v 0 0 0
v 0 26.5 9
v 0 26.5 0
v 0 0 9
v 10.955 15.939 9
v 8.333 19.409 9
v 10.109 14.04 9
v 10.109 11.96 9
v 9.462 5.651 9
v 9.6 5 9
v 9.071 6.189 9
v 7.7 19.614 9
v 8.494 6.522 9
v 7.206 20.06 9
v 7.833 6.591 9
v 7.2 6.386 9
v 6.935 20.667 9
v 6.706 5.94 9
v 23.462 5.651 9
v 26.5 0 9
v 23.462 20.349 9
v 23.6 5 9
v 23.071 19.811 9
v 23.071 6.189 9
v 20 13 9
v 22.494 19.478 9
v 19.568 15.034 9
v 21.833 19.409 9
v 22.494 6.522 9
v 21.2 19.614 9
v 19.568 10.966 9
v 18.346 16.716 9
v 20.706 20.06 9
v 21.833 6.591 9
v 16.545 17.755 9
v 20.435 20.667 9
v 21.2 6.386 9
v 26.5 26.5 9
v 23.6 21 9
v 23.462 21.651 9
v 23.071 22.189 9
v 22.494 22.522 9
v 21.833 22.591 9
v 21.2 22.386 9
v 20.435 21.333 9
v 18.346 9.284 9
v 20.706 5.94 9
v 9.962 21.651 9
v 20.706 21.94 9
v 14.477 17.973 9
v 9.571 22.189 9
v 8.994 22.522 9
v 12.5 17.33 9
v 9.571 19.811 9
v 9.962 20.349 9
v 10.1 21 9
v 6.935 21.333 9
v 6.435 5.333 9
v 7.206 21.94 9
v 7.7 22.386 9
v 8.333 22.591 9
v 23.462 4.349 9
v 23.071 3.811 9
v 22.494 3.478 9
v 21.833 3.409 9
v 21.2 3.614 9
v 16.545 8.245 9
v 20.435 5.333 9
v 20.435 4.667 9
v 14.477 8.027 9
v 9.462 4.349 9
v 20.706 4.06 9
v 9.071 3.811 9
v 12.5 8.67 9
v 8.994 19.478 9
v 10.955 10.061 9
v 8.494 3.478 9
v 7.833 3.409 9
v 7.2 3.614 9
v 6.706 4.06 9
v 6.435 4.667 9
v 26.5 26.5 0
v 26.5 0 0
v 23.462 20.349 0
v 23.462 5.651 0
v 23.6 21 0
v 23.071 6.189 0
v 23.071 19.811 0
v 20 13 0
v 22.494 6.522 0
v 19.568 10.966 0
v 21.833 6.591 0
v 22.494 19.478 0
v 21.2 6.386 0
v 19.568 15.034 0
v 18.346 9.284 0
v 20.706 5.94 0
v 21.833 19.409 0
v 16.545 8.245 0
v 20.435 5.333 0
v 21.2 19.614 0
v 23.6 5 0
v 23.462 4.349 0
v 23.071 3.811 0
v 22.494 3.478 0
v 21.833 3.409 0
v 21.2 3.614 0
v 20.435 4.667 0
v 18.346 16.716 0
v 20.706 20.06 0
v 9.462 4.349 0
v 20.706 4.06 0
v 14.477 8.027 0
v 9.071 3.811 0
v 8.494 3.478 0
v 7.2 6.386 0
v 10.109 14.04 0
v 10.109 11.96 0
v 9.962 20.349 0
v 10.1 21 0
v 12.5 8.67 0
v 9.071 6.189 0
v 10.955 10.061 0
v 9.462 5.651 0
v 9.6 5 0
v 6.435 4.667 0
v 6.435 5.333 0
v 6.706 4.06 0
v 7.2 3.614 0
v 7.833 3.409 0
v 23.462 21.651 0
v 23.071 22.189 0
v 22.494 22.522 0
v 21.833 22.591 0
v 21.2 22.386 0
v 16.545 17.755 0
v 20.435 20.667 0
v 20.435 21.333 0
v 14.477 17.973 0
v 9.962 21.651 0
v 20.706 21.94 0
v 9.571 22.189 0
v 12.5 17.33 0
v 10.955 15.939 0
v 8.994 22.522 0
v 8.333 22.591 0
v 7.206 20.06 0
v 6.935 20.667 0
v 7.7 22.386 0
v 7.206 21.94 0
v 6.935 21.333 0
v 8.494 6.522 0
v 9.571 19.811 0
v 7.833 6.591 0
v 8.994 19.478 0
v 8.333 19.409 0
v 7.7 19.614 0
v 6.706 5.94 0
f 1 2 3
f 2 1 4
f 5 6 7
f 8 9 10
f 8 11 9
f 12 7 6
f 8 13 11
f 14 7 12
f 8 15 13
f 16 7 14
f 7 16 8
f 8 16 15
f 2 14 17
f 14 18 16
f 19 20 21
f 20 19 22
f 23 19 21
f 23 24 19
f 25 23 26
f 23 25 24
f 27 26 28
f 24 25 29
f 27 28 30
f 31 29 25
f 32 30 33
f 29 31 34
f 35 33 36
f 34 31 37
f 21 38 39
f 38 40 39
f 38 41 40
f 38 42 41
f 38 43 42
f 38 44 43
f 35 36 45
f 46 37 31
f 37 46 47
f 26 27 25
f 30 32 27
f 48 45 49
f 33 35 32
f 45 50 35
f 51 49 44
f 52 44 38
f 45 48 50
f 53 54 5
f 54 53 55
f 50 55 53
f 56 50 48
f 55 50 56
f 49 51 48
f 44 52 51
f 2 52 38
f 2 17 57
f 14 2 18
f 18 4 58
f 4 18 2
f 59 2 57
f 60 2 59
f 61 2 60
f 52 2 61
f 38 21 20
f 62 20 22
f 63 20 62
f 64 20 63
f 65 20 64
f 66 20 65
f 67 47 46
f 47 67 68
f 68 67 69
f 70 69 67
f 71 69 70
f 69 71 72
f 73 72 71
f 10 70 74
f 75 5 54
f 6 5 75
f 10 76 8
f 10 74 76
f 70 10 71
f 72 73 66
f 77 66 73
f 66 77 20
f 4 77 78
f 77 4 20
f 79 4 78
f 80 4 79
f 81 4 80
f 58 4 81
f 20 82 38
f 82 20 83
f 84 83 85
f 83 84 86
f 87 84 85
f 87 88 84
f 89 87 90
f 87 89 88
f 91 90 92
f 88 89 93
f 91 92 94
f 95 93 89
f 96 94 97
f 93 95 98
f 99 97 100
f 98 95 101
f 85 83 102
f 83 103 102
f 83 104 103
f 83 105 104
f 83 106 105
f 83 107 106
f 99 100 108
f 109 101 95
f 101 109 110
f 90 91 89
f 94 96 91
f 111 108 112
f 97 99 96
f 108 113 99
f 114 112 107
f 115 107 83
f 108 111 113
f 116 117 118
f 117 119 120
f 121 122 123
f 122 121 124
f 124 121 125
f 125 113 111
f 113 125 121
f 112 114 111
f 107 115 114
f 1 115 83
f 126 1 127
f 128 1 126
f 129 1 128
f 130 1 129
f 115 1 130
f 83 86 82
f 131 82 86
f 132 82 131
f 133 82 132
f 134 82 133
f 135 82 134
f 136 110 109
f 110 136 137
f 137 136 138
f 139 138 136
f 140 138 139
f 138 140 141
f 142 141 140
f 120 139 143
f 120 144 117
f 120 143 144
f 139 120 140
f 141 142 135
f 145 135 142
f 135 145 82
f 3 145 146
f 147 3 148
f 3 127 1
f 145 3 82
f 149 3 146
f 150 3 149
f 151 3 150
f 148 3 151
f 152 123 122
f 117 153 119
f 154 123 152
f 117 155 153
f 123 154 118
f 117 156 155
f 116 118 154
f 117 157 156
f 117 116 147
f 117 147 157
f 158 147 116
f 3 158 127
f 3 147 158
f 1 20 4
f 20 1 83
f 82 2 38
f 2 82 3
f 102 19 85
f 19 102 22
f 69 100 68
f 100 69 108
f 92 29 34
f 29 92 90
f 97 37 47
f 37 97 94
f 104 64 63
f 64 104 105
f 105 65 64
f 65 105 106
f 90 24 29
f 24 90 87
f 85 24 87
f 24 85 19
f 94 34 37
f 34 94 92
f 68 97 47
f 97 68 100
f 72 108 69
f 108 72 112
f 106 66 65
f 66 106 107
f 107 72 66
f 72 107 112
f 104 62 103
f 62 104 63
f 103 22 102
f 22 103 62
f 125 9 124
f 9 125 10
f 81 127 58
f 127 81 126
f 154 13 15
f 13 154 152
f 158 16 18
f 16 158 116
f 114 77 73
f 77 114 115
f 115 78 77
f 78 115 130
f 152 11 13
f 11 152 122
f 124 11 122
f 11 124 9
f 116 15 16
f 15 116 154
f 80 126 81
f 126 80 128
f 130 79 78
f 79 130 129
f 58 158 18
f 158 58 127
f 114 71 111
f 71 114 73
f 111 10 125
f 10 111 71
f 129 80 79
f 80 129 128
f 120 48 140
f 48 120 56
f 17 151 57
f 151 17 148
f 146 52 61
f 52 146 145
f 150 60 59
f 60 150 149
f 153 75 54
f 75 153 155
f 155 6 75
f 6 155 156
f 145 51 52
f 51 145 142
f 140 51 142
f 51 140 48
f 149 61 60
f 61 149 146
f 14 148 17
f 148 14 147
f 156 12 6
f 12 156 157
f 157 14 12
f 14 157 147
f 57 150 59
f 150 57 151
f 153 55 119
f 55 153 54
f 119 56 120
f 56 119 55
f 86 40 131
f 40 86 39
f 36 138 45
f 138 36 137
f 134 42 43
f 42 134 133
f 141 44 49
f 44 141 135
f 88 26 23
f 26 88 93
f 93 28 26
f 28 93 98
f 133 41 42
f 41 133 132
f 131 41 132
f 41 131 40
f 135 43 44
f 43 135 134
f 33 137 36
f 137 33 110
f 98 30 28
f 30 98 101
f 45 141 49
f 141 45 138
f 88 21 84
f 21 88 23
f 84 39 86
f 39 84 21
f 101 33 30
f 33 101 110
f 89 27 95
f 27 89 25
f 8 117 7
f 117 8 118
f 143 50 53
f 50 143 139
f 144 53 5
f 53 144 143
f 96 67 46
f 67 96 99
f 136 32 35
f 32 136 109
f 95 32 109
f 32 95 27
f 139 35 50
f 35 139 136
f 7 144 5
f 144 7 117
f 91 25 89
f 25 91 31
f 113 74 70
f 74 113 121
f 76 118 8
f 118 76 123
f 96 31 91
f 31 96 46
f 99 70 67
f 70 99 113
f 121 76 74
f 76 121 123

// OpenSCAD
difference() {
    union() {
        cube([26.5,26.5,9]);
    }
    translate([22,5,-1]) cylinder(r=1.6, h=11, $fn=15);
    translate([8,5,-1]) cylinder(r=1.6, h=11, $fn=15);
    translate([8.5,21,-1]) cylinder(r=1.6, h=11, $fn=15);
    translate([22,21,-1]) cylinder(r=1.6, h=11, $fn=15);
    translate([15,13,-1]) cylinder(r=5, h=11, $fn=15);
}
/*
translate([-11,-11,0] ) {
    #cube([22,22,20]);
}

translate([-6,-6,0] ) {
    #cube([12,12,10]);
}*/
